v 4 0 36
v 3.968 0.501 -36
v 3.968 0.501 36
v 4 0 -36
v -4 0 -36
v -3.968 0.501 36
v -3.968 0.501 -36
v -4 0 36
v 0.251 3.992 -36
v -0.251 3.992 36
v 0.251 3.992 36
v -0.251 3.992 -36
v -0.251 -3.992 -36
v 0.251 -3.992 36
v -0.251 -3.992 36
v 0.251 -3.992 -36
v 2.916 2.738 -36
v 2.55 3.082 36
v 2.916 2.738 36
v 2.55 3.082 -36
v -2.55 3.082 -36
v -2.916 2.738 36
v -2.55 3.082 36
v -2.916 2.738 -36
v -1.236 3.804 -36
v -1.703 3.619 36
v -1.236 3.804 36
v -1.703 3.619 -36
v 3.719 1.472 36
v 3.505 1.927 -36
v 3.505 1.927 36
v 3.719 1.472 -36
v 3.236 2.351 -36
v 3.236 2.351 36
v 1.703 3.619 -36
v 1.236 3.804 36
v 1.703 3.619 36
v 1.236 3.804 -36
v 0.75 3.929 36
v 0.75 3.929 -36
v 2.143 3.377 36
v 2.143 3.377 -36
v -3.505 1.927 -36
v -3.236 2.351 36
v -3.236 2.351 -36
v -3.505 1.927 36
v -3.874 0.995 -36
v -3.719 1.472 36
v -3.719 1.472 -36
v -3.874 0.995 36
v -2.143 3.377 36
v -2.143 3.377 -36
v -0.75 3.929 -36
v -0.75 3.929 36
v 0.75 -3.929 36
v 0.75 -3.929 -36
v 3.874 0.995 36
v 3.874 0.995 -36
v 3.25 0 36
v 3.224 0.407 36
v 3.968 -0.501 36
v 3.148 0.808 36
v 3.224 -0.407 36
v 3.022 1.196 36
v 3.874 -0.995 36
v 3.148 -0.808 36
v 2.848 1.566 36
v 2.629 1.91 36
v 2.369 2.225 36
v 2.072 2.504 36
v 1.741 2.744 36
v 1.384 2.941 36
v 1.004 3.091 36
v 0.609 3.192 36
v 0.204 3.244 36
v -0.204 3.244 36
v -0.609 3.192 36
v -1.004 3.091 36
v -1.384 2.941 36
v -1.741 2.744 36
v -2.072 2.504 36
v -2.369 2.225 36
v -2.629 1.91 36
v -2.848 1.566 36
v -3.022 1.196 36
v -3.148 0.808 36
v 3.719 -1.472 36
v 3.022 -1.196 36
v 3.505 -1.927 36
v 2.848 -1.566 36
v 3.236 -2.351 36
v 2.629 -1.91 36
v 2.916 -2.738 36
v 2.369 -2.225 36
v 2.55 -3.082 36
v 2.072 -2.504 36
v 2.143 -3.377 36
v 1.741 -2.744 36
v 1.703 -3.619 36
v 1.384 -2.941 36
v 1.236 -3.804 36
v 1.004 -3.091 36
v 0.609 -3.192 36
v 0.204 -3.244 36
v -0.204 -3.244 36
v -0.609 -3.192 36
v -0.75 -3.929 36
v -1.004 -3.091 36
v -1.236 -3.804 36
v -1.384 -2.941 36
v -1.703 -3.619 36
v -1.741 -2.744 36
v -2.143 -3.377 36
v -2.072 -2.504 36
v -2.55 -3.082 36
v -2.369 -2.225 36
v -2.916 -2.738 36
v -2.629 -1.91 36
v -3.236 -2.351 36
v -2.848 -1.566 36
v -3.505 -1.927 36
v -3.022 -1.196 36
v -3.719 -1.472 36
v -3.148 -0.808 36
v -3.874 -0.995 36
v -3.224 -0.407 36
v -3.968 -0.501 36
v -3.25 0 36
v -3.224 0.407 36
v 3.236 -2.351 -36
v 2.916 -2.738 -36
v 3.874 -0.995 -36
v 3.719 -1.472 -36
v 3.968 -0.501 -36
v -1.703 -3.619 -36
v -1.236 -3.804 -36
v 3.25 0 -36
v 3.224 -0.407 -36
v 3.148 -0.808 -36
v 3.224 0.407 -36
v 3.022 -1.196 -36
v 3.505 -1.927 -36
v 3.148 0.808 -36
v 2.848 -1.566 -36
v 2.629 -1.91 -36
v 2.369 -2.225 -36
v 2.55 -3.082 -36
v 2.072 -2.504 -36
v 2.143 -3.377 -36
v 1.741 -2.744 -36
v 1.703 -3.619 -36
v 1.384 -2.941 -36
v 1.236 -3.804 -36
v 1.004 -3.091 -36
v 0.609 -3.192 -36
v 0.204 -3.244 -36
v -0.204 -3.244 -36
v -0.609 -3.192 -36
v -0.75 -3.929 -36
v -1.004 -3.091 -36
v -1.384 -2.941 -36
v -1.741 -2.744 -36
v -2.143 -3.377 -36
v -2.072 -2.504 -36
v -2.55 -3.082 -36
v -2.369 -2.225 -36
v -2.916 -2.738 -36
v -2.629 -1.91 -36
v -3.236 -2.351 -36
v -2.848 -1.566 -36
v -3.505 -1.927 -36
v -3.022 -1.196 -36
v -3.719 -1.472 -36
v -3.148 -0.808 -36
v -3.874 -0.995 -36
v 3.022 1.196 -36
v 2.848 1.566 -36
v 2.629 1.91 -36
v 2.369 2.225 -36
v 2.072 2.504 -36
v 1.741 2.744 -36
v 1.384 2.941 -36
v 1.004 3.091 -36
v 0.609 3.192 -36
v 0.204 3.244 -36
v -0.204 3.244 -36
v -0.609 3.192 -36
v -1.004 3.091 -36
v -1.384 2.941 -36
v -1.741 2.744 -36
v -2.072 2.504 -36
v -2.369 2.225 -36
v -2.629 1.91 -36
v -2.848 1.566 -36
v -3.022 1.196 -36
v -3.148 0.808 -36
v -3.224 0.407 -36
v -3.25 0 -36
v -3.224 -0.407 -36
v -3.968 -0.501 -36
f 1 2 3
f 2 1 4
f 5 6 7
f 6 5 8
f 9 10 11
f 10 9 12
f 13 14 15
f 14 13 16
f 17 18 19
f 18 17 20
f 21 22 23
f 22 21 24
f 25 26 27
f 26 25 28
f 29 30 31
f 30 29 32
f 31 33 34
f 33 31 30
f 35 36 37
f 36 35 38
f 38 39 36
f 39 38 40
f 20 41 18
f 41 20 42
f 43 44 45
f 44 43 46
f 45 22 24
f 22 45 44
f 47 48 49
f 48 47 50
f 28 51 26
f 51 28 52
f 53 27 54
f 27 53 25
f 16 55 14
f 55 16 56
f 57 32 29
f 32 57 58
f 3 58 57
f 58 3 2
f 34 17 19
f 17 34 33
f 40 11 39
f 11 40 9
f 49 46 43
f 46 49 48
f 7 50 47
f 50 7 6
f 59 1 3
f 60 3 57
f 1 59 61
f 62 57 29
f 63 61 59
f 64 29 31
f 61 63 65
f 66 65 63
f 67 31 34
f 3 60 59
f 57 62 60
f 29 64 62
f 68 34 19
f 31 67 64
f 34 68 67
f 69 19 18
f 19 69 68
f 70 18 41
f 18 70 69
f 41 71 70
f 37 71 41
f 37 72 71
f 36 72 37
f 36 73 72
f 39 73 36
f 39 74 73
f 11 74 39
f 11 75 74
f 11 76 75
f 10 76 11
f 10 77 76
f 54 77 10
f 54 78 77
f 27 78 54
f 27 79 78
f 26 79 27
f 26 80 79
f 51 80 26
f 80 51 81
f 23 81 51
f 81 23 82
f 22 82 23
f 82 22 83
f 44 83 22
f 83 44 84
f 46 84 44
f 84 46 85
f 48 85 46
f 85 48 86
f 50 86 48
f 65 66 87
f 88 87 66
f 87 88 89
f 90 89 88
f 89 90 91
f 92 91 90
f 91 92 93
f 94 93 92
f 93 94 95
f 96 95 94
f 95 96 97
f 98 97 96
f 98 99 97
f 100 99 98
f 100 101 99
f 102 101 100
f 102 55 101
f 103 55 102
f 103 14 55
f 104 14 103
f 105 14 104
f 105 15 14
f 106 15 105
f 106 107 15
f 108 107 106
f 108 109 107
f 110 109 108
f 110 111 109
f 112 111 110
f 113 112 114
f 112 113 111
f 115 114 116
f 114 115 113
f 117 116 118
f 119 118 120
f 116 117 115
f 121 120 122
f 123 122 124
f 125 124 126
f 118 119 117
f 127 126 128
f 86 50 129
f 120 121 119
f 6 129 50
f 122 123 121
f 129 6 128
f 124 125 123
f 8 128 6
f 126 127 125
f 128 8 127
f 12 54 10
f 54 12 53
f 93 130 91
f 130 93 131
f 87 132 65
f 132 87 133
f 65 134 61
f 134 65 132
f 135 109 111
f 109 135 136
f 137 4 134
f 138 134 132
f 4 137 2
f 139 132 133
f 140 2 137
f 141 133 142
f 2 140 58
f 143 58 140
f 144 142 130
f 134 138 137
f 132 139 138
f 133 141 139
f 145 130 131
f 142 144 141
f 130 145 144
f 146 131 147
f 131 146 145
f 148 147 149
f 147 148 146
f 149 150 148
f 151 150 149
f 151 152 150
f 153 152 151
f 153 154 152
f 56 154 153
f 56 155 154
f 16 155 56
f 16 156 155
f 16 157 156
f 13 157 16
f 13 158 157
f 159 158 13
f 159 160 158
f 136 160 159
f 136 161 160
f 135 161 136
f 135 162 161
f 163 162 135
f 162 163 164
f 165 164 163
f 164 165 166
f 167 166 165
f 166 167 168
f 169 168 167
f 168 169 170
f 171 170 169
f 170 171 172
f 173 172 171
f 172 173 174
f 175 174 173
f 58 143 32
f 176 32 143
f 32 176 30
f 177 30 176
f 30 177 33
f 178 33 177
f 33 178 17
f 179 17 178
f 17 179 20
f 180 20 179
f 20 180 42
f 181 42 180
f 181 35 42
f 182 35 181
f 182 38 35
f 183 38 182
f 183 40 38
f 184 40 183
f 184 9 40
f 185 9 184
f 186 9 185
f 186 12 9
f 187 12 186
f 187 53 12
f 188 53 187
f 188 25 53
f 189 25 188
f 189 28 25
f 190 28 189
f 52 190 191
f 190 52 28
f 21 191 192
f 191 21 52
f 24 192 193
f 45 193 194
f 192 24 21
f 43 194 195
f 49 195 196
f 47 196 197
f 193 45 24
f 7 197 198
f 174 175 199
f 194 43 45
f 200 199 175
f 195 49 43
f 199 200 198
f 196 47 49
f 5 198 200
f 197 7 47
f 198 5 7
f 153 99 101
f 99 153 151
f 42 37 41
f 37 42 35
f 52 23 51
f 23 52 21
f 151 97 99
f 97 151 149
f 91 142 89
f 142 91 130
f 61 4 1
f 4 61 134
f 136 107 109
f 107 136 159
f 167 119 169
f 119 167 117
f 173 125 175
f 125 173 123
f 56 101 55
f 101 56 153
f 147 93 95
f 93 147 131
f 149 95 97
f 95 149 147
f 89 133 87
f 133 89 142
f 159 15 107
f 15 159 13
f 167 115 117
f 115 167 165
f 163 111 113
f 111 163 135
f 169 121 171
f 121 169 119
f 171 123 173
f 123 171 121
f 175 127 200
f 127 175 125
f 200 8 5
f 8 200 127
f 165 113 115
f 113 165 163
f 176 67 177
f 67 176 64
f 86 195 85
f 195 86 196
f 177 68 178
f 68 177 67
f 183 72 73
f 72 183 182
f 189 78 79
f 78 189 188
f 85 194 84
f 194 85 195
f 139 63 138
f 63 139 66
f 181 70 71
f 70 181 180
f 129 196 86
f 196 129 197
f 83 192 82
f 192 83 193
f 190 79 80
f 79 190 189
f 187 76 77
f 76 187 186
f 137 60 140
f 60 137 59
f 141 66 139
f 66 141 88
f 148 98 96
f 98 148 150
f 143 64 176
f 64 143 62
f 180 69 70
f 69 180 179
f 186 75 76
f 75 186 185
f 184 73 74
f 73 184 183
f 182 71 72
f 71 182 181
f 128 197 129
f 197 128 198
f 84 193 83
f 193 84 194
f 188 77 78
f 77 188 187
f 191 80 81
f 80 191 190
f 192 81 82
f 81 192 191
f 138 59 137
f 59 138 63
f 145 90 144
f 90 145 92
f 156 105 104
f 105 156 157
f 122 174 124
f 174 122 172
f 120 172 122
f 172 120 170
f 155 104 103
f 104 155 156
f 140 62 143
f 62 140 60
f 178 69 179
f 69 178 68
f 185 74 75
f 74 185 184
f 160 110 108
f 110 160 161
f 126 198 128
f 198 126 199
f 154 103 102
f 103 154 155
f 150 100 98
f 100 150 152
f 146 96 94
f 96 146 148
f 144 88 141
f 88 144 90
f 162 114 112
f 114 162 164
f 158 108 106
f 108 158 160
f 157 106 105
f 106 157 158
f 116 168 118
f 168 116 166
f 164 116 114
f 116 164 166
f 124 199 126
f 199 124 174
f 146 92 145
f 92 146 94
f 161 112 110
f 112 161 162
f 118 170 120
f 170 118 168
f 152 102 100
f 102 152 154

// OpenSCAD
$fn = 50;


difference() {
	union() {
		translate(v = [0, 0, -36.0000000000]) {
			cylinder(h = 72, r = 4.0000000000);
		}
	}
	union() {
		translate(v = [0, 0, -100.0000000000]) {
			cylinder(h = 200, r = 3.2500000000);
		}
	}
}
